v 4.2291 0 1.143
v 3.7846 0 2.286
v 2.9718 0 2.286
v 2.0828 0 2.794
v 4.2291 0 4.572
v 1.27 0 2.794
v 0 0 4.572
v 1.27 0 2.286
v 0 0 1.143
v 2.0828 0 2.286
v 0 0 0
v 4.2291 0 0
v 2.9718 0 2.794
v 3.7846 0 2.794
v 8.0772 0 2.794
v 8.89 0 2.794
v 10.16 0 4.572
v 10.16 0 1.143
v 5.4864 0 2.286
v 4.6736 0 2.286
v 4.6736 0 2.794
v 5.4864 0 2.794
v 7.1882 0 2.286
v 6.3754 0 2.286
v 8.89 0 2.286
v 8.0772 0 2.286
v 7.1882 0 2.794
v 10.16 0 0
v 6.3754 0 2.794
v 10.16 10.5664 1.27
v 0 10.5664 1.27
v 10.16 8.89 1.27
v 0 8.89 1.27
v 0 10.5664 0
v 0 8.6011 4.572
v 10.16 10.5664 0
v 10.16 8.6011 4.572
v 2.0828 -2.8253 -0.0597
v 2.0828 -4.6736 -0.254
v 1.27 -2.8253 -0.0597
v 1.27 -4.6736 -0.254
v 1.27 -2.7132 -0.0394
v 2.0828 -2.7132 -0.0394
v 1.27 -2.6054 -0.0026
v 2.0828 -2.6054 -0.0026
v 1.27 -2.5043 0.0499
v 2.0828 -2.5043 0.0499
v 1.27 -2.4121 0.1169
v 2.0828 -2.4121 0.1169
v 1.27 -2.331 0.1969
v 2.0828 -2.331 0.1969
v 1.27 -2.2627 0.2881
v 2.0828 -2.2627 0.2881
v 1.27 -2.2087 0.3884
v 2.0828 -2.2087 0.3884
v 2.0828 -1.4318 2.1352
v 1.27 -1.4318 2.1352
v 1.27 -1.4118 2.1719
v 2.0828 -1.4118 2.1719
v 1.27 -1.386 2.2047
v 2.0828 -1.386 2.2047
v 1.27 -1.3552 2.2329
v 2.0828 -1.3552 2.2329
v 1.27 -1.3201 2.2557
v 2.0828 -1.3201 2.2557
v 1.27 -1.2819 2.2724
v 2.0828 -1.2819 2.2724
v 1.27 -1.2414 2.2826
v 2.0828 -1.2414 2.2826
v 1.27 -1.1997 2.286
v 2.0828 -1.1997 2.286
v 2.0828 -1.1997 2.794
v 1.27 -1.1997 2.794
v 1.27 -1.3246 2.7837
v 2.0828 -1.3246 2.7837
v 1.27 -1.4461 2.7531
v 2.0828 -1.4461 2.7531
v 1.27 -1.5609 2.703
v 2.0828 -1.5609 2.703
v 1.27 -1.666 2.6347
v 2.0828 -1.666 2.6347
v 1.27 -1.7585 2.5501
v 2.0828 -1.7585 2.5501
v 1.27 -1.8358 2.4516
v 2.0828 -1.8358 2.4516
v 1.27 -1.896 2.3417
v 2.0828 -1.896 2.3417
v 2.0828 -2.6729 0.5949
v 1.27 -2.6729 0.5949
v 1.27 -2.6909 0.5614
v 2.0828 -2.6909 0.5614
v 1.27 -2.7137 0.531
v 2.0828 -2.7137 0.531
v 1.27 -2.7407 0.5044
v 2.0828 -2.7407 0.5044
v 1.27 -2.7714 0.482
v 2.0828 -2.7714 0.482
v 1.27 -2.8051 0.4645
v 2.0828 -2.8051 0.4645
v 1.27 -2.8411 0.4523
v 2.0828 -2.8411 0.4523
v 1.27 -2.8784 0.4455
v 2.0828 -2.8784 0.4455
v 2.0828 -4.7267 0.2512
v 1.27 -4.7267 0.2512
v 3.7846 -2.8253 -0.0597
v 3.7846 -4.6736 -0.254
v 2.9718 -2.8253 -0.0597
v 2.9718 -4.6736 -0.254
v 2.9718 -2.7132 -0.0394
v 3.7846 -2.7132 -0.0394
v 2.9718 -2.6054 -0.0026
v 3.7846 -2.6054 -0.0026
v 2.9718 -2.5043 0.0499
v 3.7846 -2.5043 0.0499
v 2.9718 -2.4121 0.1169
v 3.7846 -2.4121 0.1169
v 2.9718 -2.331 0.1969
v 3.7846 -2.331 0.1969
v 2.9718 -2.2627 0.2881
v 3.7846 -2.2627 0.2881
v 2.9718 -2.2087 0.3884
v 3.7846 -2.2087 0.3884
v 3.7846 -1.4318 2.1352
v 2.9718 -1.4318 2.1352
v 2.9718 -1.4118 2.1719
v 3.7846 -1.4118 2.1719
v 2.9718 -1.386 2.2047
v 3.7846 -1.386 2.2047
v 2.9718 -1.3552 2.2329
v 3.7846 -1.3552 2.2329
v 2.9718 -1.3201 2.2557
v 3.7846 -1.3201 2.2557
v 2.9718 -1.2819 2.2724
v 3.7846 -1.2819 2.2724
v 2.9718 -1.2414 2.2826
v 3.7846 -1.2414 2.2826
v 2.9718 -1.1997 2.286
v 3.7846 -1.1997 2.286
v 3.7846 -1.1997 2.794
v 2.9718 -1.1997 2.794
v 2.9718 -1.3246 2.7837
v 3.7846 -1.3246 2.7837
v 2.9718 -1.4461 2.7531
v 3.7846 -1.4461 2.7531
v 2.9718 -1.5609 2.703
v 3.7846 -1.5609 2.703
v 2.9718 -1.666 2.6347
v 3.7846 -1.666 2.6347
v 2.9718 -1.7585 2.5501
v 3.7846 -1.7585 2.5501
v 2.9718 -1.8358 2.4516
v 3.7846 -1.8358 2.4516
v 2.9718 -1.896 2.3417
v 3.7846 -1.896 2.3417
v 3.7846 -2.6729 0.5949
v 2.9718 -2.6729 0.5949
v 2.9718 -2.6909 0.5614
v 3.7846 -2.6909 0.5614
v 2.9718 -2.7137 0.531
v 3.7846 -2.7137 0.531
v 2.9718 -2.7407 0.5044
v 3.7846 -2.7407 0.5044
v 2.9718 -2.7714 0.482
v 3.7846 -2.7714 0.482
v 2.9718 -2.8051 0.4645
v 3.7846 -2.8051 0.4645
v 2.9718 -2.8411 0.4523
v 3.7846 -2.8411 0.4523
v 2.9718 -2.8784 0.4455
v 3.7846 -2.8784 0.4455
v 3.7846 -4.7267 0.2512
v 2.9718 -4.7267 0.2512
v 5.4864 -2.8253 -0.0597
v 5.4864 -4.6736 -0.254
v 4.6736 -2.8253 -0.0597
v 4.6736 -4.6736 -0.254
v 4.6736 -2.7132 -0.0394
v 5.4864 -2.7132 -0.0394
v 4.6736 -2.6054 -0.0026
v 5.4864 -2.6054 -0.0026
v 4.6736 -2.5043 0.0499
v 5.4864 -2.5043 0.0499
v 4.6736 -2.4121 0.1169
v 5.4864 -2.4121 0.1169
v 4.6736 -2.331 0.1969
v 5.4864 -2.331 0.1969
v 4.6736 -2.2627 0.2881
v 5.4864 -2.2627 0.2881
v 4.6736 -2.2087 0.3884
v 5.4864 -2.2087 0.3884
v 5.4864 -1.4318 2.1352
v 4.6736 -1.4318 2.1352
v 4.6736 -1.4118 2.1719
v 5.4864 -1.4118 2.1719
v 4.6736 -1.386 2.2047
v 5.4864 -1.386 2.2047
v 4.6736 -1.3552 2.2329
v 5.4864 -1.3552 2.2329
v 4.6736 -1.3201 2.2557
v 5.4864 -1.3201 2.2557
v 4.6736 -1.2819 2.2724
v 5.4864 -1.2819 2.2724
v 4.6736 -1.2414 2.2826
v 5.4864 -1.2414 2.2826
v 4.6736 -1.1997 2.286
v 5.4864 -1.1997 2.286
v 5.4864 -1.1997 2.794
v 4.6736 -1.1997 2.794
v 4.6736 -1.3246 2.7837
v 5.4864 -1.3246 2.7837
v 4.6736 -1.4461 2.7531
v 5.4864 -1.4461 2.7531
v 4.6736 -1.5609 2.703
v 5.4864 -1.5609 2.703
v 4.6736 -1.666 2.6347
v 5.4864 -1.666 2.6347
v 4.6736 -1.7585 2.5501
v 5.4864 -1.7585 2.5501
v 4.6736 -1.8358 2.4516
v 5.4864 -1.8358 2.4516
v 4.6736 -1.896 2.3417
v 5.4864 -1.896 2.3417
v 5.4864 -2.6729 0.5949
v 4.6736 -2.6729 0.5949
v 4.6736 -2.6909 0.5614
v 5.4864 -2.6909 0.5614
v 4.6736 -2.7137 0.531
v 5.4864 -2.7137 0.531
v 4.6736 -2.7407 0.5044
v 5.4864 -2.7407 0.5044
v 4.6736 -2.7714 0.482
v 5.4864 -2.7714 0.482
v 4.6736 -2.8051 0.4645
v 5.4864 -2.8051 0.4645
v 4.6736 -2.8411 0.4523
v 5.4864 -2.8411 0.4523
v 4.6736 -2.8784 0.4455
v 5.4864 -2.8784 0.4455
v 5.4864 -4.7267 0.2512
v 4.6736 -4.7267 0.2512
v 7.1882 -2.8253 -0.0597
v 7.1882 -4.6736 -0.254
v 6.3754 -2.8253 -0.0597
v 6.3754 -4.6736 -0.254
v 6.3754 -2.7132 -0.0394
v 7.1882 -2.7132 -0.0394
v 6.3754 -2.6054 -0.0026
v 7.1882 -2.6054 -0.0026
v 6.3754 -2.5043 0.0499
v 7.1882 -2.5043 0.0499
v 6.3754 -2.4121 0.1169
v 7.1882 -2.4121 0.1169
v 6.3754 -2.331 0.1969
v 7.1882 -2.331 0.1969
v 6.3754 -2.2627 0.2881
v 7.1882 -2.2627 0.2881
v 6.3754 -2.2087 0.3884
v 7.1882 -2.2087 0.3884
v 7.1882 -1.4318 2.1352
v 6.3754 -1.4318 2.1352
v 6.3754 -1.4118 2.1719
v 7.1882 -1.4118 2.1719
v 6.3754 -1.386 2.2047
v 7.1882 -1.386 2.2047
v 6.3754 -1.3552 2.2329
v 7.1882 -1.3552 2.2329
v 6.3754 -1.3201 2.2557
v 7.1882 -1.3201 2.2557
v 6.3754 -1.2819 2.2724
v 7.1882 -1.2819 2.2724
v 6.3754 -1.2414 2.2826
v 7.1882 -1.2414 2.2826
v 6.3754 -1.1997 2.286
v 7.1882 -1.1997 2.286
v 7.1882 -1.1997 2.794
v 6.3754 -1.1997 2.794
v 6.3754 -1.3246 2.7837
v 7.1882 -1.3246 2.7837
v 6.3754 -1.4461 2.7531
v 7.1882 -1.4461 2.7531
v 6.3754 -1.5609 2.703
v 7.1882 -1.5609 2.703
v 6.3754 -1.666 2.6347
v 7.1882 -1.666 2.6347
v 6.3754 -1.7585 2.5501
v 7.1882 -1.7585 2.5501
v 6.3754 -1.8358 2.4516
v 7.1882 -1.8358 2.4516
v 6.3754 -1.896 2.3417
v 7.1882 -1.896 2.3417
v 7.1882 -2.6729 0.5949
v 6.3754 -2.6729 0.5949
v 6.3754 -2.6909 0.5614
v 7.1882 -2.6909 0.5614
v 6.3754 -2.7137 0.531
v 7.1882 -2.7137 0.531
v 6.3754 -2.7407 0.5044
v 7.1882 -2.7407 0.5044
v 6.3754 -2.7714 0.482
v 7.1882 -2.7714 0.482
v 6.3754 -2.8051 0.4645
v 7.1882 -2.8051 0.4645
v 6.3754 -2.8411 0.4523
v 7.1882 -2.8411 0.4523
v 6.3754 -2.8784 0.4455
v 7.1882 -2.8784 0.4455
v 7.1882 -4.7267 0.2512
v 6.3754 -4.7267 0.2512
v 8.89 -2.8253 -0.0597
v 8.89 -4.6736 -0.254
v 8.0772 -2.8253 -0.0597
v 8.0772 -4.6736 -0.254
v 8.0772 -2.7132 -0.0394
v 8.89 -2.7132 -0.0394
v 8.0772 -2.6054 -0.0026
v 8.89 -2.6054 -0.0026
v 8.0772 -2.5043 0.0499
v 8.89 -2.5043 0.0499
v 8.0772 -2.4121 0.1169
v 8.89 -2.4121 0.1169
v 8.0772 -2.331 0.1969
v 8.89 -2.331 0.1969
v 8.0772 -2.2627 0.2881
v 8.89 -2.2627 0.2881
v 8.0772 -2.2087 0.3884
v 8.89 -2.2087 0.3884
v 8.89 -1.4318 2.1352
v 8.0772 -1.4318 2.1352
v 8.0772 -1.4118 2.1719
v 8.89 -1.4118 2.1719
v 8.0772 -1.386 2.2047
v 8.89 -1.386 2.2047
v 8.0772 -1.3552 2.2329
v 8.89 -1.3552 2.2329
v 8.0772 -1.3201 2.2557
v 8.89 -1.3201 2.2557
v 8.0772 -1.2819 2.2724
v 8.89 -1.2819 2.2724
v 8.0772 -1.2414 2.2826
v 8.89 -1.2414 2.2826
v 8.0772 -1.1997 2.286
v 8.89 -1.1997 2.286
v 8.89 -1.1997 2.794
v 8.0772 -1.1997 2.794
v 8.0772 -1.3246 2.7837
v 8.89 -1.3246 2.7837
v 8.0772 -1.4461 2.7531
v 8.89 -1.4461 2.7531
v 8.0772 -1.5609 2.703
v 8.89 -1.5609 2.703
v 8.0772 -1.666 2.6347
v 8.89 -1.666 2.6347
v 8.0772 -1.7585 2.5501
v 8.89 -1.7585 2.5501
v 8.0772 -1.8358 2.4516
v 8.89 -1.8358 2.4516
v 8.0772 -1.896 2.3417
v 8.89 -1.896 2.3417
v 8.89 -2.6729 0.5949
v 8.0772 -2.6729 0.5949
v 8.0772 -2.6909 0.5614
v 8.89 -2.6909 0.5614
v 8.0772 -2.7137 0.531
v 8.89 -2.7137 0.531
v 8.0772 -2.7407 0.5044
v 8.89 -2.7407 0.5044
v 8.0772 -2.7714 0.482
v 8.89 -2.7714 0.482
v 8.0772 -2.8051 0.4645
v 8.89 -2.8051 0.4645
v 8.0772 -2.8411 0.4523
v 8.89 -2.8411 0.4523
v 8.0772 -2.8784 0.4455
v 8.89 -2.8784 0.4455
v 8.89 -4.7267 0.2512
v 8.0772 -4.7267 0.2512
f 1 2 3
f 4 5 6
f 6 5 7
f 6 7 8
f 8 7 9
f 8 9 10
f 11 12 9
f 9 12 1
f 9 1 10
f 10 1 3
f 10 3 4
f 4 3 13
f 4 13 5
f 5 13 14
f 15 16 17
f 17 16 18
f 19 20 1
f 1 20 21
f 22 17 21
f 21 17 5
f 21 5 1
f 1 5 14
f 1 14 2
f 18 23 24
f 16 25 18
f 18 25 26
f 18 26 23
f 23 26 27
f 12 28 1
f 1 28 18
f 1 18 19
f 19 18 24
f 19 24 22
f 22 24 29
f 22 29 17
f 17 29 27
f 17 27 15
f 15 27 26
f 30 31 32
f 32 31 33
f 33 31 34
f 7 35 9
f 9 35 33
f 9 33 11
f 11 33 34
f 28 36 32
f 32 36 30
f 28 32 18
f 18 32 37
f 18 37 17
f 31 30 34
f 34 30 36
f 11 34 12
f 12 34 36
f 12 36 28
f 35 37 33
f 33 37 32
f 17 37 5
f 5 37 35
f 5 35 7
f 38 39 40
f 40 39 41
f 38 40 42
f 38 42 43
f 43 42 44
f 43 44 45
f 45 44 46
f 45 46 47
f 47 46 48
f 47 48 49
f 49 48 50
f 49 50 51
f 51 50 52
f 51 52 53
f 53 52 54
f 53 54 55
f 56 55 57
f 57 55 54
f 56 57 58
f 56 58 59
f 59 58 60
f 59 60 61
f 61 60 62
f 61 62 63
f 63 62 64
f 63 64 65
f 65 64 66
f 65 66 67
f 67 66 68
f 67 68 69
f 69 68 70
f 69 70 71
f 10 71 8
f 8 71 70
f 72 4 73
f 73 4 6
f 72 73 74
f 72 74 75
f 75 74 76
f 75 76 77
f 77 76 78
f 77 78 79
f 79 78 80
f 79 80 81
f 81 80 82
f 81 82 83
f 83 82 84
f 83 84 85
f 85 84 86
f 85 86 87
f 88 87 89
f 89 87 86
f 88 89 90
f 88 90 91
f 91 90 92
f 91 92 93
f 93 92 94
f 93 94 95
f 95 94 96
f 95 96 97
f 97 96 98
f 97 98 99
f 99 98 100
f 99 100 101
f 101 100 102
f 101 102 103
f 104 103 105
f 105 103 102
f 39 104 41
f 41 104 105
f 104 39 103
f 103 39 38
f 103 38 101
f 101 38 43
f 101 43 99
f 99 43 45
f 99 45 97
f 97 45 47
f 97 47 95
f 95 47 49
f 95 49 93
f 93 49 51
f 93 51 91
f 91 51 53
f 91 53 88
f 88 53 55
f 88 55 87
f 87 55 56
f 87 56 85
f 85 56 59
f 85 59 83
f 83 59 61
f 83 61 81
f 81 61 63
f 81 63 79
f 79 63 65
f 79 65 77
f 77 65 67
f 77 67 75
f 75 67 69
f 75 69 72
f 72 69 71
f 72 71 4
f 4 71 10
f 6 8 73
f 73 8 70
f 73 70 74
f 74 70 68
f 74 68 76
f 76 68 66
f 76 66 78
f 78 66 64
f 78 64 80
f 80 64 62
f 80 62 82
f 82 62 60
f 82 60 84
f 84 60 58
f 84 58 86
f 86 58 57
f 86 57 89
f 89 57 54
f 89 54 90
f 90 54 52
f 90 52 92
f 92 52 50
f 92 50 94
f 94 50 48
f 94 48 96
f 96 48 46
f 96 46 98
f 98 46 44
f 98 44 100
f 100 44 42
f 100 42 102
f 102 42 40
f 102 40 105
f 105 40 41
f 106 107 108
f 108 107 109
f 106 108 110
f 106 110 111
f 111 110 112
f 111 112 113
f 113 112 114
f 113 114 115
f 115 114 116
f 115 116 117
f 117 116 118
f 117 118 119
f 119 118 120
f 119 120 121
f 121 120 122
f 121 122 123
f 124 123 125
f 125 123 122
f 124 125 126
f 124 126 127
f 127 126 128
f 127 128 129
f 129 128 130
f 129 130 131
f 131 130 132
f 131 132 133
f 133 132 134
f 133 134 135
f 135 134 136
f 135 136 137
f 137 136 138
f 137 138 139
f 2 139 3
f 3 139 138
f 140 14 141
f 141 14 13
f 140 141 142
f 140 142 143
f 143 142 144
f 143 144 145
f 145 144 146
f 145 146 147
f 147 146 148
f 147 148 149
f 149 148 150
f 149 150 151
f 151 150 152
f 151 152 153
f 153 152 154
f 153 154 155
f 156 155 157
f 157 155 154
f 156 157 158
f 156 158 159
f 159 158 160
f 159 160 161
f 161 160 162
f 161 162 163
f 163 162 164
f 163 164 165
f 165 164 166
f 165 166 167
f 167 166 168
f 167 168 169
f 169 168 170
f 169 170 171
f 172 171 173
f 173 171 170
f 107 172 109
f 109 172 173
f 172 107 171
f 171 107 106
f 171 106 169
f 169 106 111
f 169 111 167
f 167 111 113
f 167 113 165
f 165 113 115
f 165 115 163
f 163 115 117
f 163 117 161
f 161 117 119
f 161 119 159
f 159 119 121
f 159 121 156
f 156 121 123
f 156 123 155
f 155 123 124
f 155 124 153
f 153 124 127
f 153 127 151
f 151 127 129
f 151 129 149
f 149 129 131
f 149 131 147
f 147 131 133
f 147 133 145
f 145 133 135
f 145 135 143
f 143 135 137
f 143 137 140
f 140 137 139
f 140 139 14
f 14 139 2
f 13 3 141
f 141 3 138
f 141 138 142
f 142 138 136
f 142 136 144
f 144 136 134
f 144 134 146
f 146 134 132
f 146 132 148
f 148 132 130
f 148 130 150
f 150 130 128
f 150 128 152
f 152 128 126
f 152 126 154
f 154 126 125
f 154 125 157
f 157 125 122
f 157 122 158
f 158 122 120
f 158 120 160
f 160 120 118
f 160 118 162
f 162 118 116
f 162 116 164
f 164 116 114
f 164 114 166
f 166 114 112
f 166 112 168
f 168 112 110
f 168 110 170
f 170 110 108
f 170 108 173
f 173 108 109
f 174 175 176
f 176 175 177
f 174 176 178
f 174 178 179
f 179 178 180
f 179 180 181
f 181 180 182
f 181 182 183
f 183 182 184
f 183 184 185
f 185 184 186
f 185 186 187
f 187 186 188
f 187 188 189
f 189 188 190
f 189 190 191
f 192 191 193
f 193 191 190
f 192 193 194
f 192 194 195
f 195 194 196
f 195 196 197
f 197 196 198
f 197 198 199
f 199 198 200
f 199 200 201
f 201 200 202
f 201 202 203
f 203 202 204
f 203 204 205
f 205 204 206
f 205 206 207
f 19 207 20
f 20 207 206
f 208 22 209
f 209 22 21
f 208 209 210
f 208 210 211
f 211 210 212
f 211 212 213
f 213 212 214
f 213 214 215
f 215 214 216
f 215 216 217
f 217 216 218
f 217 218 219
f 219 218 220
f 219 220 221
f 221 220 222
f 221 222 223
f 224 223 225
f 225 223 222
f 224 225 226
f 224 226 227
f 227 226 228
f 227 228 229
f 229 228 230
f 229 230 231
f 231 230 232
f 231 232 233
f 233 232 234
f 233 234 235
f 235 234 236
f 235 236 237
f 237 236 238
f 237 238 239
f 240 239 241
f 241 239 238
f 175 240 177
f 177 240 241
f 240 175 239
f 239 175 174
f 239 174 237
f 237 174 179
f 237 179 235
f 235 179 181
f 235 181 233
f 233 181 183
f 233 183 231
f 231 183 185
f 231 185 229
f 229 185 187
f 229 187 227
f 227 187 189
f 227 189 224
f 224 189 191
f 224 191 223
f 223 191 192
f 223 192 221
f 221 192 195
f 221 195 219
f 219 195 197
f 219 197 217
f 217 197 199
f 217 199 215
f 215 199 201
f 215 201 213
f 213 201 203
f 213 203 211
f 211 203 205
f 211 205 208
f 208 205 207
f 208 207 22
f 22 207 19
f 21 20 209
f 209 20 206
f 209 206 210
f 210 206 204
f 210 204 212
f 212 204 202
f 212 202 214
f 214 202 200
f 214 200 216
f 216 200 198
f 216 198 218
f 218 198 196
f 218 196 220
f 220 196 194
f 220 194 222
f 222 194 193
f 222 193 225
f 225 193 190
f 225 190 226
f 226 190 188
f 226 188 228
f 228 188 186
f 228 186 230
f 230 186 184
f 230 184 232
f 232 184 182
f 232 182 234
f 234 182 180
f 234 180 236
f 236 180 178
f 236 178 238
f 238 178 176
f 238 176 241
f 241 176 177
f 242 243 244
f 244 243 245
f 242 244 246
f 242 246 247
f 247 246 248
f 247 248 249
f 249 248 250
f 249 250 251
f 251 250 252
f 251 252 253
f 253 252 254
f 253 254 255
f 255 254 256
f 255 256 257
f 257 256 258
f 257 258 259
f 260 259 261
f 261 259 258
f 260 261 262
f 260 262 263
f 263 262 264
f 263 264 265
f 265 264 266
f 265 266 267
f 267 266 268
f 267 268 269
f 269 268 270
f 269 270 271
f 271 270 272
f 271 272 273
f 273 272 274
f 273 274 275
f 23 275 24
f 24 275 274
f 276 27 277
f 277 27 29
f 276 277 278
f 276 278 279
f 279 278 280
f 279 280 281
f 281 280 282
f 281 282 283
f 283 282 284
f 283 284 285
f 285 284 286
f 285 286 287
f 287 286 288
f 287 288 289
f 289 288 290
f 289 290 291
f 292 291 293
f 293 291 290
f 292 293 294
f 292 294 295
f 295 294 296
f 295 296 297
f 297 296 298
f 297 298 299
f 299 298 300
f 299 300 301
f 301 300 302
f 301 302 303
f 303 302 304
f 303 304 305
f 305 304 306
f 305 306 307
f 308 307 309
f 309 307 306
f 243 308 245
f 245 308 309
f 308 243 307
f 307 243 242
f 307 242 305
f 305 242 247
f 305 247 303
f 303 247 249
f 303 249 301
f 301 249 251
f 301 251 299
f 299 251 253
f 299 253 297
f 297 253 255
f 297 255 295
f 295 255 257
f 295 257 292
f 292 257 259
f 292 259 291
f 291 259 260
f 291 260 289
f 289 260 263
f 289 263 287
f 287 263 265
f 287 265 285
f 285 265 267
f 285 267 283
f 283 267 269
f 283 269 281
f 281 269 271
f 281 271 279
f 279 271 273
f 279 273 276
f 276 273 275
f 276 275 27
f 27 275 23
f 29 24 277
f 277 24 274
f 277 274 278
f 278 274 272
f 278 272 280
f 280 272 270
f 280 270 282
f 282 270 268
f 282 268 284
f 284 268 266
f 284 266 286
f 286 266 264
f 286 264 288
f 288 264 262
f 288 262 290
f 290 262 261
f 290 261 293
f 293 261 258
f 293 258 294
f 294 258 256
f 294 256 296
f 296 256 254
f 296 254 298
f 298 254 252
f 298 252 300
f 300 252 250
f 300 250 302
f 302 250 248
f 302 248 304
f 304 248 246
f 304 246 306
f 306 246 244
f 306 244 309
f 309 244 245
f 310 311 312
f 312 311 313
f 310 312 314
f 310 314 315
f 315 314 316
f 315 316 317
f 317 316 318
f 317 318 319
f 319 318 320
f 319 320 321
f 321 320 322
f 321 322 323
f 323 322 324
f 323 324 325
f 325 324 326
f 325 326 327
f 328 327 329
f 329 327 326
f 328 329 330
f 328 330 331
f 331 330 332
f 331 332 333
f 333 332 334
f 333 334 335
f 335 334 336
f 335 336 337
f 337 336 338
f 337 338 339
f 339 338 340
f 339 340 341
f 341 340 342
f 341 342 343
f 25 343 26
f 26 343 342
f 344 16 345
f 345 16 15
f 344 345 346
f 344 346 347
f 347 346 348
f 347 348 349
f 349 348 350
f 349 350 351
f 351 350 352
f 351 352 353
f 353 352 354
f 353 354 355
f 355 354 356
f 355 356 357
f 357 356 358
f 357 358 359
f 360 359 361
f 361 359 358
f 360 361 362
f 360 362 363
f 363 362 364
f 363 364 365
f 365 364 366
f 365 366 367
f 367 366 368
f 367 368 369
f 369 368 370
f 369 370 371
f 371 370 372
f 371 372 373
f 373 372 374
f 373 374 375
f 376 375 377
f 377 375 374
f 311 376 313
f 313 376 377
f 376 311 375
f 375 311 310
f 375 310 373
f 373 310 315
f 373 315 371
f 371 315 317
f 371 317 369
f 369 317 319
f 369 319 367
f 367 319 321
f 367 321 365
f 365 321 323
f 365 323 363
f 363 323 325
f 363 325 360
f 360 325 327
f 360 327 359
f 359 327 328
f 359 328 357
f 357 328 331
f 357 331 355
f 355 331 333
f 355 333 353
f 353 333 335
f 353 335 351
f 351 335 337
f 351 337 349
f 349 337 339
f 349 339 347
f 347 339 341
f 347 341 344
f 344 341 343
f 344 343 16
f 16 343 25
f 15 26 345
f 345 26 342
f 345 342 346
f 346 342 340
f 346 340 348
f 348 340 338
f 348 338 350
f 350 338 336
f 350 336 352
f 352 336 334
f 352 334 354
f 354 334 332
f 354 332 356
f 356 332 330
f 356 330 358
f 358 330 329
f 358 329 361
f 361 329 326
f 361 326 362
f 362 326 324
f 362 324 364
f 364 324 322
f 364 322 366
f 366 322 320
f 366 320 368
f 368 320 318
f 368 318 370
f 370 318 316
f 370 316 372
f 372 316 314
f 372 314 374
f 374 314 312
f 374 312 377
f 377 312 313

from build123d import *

# Parameters (mm, degrees)
SKETCH1_W           = 10.16
SKETCH1_H           = 10.5664
BOSS_EXTRUDE1_DEPTH = 1.27
SKETCH2_W           = 10.16
SKETCH2_H           = 8.89
BOSS_EXTRUDE2_DEPTH = 3.302
DRAFT1_ANGLE        = 5
EXTRUDE_THIN1_DEPTH = 0.4064
LPATTERN1_COUNT     = 5
LPATTERN1_PITCH     = 1.7018


with BuildPart() as part:
    # Sketch1 → Boss-Extrude1 (new body)
    with BuildSketch(Plane.XY):
        with Locations((5.08, 5.2832)):
            Rectangle(SKETCH1_W, SKETCH1_H)
    extrude(amount=BOSS_EXTRUDE1_DEPTH)

    # Sketch2 → Boss-Extrude2 (add)
    with BuildSketch(Plane.XY.offset(1.27)):
        with Locations((5.08, 4.445)):
            Rectangle(SKETCH2_W, SKETCH2_H)
    extrude(amount=BOSS_EXTRUDE2_DEPTH)

    # Draft1
    draft1_faces = [part.faces().sort_by_distance(p)[0] for p in [
        (5.08, 8.89, 2.921),
    ]]
    draft(draft1_faces, Plane.XY.offset(1.27), DRAFT1_ANGLE)

    # Sketch3 → Extrude-Thin1 (add, symmetric)
    with BuildSketch(Plane.ZY.offset(-1.6764)):
        with BuildLine():
            Line((2.286, 0), (2.286, -1.199738518))
            ThreePointArc((2.286, -1.199738518), (2.244995599, -1.338117976), (2.13522146, -1.431818957))
            Line((2.13522146, -1.431818957), (0.388422724, -2.208735427))
            ThreePointArc((0.388422724, -2.208735427), (0.081702678, -2.456965316), (-0.05973858, -2.825326055))
            Line((-0.05973858, -2.825326055), (-0.254, -4.6736))
            Line((-0.254, -4.6736), (0.251217123, -4.726700459))
            Line((0.251217123, -4.726700459), (0.445478542, -2.878426515))
            ThreePointArc((0.445478542, -2.878426515), (0.492625629, -2.755639602), (0.594865644, -2.672896305))
            Line((0.594865644, -2.672896305), (2.34166438, -1.895979835))
            ThreePointArc((2.34166438, -1.895979835), (2.670986798, -1.614876894), (2.794, -1.199738518))
            Line((2.794, -1.199738518), (2.794, 0))
            Line((2.794, 0), (2.286, 0))
        make_face()
    extrude_thin1 = extrude(amount=EXTRUDE_THIN1_DEPTH, both=True)

    # LPattern1: Extrude-Thin1 ×5
    with Locations(*[(i * LPATTERN1_PITCH, 0, 0) for i in range(1, LPATTERN1_COUNT)]):
        add(extrude_thin1)


solid = part.part
